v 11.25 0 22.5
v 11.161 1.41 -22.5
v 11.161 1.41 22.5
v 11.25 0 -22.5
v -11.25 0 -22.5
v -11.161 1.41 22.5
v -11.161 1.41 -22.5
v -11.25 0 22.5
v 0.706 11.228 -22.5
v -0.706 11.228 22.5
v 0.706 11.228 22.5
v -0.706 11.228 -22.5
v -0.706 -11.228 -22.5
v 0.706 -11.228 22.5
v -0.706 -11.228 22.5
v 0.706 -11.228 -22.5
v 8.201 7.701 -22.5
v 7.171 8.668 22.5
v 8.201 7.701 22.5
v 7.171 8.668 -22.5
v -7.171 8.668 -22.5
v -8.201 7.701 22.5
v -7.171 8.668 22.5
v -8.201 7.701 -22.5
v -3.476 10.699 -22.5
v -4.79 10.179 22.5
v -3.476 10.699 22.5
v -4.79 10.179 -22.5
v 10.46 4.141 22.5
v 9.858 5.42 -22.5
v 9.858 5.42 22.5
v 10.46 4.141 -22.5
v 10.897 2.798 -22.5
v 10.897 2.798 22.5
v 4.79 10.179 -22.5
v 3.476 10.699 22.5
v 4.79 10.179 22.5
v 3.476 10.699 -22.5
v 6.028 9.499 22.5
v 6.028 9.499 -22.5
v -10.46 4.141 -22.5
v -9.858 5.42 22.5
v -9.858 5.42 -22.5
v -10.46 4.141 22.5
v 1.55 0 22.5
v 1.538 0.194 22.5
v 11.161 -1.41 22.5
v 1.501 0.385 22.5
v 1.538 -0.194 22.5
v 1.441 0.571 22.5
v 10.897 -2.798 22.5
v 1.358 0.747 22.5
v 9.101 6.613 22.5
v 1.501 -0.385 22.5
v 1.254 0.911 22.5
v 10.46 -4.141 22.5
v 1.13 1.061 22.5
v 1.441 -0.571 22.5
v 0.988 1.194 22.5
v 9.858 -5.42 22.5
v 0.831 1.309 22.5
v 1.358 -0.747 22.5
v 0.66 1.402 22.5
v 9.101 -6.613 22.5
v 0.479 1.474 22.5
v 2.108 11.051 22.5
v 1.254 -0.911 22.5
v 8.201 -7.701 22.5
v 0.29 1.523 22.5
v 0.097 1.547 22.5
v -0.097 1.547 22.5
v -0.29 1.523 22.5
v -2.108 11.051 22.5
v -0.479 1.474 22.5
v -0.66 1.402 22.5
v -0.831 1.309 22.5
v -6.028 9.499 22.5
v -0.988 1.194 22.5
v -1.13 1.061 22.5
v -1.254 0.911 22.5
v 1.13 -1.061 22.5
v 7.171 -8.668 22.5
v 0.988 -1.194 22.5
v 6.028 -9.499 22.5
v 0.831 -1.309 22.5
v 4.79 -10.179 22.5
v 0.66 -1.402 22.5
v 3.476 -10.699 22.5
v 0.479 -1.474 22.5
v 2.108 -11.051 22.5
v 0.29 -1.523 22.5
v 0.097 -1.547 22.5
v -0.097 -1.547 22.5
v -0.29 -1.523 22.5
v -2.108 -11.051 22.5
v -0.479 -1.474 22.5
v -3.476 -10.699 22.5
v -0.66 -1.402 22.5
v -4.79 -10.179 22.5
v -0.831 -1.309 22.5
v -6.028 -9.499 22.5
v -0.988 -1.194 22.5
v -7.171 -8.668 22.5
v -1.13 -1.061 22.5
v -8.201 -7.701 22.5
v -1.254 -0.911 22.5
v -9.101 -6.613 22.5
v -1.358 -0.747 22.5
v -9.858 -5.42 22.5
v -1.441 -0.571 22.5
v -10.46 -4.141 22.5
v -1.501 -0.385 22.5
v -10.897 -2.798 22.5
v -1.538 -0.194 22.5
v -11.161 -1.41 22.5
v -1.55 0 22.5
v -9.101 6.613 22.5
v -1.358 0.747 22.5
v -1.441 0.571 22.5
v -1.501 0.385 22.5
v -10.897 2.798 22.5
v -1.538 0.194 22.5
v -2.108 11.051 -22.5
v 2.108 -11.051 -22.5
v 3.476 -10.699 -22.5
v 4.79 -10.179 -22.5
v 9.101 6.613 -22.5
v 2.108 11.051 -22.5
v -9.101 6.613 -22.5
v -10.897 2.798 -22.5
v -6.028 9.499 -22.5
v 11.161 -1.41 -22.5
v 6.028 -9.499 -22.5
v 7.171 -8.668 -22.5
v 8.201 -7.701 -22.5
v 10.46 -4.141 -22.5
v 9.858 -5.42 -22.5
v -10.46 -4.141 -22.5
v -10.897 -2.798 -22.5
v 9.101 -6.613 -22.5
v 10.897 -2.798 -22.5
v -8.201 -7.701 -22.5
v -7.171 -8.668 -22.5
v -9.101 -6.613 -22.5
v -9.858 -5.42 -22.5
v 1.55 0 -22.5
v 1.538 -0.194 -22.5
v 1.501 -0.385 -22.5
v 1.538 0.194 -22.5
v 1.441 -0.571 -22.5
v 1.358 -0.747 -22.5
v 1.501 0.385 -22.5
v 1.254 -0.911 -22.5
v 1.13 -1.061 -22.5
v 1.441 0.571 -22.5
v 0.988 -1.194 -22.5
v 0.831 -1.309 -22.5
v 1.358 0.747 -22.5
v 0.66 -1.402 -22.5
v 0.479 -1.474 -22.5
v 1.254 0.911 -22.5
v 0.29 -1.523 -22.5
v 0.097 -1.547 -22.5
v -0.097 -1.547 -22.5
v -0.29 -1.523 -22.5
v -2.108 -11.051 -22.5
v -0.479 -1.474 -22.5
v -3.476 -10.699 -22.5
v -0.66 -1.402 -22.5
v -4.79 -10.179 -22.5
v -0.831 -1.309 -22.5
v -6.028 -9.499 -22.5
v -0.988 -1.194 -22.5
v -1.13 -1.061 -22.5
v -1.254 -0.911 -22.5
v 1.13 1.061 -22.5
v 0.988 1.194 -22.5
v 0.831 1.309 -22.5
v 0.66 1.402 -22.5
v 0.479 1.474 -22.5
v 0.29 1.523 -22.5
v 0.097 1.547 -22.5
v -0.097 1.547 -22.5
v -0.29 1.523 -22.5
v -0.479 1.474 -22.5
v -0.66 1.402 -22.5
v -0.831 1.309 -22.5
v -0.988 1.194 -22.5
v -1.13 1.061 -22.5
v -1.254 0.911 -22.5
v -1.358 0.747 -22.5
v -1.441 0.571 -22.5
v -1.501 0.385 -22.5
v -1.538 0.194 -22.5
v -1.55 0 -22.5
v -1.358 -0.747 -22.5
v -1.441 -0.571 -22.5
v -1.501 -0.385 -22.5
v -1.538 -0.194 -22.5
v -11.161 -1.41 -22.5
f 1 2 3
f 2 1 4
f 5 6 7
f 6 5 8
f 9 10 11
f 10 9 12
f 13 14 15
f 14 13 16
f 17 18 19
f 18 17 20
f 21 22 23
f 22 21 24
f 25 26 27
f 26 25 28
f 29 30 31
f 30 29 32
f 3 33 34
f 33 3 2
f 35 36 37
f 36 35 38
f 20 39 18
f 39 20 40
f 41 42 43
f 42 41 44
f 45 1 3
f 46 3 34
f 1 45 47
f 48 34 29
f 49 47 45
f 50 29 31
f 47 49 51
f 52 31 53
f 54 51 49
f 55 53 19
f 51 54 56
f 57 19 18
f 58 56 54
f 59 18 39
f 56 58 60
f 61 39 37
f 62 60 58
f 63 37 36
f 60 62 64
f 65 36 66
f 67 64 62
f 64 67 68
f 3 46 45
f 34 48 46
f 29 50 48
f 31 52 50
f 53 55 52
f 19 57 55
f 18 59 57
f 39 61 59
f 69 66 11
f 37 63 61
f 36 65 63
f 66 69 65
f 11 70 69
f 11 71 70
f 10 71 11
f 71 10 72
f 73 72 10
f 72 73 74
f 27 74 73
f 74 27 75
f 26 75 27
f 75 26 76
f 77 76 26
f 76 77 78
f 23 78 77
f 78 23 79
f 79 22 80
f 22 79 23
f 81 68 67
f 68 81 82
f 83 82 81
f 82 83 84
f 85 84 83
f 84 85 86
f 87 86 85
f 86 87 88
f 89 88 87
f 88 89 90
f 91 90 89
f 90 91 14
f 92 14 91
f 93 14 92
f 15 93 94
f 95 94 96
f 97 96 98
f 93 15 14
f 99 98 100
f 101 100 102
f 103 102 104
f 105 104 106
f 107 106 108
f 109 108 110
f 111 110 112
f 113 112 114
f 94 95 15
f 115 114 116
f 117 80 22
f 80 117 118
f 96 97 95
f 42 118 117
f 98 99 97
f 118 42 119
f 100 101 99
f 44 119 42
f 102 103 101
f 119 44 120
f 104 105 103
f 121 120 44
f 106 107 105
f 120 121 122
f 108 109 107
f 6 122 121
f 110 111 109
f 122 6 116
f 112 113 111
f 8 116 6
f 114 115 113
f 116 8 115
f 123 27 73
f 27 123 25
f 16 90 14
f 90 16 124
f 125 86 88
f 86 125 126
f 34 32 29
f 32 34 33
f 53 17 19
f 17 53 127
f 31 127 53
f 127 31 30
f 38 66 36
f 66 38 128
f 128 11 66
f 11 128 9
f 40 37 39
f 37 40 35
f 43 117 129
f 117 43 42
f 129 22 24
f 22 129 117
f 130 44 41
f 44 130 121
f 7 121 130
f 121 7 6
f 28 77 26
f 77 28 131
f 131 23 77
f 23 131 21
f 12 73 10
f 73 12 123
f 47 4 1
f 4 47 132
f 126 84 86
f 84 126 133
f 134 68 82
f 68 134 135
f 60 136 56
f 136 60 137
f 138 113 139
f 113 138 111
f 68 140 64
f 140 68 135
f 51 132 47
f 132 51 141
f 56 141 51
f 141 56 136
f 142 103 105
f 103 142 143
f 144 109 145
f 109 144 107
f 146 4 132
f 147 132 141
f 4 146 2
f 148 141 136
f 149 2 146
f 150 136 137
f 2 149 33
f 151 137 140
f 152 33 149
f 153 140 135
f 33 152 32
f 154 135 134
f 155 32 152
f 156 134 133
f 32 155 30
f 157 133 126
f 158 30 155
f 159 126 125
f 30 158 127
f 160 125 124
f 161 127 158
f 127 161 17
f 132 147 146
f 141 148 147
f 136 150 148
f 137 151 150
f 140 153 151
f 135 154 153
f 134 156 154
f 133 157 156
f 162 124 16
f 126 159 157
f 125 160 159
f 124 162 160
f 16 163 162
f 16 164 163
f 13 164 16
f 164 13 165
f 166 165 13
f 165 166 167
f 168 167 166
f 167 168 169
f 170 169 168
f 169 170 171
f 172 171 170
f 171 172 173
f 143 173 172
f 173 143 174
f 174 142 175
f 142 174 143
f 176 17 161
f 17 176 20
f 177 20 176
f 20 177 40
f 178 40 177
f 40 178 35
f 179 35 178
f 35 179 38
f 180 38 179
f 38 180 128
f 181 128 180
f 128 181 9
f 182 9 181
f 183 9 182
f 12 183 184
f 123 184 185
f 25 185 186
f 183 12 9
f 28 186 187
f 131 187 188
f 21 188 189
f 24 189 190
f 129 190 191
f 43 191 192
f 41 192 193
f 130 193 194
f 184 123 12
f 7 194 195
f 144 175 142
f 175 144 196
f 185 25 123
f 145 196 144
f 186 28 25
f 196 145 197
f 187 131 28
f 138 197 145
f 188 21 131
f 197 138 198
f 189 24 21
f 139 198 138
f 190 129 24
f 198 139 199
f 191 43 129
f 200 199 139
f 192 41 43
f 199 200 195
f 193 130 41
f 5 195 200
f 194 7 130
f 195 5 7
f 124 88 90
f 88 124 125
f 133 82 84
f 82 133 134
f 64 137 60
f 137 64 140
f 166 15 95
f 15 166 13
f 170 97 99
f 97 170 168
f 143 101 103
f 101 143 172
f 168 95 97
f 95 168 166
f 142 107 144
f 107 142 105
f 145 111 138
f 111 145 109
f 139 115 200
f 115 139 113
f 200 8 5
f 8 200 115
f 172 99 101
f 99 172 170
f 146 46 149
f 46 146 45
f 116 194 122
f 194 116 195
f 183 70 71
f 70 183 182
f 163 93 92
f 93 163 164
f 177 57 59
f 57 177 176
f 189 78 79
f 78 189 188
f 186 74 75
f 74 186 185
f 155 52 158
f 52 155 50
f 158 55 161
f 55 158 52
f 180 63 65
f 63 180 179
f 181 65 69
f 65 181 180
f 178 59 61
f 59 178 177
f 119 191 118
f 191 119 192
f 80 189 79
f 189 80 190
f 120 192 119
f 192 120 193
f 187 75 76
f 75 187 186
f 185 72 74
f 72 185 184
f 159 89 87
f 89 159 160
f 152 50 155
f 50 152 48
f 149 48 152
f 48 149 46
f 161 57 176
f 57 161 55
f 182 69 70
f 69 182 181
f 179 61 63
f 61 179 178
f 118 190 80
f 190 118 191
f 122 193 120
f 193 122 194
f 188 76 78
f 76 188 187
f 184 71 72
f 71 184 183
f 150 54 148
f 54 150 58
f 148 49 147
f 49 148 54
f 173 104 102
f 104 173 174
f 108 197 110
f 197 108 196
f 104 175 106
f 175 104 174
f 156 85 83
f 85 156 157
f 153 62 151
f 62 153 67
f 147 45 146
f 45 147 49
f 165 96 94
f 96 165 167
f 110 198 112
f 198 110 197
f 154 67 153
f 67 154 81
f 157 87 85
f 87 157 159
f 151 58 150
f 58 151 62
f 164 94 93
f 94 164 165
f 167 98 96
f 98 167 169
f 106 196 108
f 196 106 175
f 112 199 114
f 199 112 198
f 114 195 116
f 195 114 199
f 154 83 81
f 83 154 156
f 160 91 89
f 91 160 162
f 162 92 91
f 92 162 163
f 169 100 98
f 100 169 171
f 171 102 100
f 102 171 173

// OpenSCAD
$fn = 50;


difference() {
	union() {
		translate(v = [0, 0, -22.5000000000]) {
			cylinder(h = 45, r = 11.2500000000);
		}
	}
	union() {
		translate(v = [0, 0, -100.0000000000]) {
			cylinder(h = 200, r = 1.5500000000);
		}
	}
}
